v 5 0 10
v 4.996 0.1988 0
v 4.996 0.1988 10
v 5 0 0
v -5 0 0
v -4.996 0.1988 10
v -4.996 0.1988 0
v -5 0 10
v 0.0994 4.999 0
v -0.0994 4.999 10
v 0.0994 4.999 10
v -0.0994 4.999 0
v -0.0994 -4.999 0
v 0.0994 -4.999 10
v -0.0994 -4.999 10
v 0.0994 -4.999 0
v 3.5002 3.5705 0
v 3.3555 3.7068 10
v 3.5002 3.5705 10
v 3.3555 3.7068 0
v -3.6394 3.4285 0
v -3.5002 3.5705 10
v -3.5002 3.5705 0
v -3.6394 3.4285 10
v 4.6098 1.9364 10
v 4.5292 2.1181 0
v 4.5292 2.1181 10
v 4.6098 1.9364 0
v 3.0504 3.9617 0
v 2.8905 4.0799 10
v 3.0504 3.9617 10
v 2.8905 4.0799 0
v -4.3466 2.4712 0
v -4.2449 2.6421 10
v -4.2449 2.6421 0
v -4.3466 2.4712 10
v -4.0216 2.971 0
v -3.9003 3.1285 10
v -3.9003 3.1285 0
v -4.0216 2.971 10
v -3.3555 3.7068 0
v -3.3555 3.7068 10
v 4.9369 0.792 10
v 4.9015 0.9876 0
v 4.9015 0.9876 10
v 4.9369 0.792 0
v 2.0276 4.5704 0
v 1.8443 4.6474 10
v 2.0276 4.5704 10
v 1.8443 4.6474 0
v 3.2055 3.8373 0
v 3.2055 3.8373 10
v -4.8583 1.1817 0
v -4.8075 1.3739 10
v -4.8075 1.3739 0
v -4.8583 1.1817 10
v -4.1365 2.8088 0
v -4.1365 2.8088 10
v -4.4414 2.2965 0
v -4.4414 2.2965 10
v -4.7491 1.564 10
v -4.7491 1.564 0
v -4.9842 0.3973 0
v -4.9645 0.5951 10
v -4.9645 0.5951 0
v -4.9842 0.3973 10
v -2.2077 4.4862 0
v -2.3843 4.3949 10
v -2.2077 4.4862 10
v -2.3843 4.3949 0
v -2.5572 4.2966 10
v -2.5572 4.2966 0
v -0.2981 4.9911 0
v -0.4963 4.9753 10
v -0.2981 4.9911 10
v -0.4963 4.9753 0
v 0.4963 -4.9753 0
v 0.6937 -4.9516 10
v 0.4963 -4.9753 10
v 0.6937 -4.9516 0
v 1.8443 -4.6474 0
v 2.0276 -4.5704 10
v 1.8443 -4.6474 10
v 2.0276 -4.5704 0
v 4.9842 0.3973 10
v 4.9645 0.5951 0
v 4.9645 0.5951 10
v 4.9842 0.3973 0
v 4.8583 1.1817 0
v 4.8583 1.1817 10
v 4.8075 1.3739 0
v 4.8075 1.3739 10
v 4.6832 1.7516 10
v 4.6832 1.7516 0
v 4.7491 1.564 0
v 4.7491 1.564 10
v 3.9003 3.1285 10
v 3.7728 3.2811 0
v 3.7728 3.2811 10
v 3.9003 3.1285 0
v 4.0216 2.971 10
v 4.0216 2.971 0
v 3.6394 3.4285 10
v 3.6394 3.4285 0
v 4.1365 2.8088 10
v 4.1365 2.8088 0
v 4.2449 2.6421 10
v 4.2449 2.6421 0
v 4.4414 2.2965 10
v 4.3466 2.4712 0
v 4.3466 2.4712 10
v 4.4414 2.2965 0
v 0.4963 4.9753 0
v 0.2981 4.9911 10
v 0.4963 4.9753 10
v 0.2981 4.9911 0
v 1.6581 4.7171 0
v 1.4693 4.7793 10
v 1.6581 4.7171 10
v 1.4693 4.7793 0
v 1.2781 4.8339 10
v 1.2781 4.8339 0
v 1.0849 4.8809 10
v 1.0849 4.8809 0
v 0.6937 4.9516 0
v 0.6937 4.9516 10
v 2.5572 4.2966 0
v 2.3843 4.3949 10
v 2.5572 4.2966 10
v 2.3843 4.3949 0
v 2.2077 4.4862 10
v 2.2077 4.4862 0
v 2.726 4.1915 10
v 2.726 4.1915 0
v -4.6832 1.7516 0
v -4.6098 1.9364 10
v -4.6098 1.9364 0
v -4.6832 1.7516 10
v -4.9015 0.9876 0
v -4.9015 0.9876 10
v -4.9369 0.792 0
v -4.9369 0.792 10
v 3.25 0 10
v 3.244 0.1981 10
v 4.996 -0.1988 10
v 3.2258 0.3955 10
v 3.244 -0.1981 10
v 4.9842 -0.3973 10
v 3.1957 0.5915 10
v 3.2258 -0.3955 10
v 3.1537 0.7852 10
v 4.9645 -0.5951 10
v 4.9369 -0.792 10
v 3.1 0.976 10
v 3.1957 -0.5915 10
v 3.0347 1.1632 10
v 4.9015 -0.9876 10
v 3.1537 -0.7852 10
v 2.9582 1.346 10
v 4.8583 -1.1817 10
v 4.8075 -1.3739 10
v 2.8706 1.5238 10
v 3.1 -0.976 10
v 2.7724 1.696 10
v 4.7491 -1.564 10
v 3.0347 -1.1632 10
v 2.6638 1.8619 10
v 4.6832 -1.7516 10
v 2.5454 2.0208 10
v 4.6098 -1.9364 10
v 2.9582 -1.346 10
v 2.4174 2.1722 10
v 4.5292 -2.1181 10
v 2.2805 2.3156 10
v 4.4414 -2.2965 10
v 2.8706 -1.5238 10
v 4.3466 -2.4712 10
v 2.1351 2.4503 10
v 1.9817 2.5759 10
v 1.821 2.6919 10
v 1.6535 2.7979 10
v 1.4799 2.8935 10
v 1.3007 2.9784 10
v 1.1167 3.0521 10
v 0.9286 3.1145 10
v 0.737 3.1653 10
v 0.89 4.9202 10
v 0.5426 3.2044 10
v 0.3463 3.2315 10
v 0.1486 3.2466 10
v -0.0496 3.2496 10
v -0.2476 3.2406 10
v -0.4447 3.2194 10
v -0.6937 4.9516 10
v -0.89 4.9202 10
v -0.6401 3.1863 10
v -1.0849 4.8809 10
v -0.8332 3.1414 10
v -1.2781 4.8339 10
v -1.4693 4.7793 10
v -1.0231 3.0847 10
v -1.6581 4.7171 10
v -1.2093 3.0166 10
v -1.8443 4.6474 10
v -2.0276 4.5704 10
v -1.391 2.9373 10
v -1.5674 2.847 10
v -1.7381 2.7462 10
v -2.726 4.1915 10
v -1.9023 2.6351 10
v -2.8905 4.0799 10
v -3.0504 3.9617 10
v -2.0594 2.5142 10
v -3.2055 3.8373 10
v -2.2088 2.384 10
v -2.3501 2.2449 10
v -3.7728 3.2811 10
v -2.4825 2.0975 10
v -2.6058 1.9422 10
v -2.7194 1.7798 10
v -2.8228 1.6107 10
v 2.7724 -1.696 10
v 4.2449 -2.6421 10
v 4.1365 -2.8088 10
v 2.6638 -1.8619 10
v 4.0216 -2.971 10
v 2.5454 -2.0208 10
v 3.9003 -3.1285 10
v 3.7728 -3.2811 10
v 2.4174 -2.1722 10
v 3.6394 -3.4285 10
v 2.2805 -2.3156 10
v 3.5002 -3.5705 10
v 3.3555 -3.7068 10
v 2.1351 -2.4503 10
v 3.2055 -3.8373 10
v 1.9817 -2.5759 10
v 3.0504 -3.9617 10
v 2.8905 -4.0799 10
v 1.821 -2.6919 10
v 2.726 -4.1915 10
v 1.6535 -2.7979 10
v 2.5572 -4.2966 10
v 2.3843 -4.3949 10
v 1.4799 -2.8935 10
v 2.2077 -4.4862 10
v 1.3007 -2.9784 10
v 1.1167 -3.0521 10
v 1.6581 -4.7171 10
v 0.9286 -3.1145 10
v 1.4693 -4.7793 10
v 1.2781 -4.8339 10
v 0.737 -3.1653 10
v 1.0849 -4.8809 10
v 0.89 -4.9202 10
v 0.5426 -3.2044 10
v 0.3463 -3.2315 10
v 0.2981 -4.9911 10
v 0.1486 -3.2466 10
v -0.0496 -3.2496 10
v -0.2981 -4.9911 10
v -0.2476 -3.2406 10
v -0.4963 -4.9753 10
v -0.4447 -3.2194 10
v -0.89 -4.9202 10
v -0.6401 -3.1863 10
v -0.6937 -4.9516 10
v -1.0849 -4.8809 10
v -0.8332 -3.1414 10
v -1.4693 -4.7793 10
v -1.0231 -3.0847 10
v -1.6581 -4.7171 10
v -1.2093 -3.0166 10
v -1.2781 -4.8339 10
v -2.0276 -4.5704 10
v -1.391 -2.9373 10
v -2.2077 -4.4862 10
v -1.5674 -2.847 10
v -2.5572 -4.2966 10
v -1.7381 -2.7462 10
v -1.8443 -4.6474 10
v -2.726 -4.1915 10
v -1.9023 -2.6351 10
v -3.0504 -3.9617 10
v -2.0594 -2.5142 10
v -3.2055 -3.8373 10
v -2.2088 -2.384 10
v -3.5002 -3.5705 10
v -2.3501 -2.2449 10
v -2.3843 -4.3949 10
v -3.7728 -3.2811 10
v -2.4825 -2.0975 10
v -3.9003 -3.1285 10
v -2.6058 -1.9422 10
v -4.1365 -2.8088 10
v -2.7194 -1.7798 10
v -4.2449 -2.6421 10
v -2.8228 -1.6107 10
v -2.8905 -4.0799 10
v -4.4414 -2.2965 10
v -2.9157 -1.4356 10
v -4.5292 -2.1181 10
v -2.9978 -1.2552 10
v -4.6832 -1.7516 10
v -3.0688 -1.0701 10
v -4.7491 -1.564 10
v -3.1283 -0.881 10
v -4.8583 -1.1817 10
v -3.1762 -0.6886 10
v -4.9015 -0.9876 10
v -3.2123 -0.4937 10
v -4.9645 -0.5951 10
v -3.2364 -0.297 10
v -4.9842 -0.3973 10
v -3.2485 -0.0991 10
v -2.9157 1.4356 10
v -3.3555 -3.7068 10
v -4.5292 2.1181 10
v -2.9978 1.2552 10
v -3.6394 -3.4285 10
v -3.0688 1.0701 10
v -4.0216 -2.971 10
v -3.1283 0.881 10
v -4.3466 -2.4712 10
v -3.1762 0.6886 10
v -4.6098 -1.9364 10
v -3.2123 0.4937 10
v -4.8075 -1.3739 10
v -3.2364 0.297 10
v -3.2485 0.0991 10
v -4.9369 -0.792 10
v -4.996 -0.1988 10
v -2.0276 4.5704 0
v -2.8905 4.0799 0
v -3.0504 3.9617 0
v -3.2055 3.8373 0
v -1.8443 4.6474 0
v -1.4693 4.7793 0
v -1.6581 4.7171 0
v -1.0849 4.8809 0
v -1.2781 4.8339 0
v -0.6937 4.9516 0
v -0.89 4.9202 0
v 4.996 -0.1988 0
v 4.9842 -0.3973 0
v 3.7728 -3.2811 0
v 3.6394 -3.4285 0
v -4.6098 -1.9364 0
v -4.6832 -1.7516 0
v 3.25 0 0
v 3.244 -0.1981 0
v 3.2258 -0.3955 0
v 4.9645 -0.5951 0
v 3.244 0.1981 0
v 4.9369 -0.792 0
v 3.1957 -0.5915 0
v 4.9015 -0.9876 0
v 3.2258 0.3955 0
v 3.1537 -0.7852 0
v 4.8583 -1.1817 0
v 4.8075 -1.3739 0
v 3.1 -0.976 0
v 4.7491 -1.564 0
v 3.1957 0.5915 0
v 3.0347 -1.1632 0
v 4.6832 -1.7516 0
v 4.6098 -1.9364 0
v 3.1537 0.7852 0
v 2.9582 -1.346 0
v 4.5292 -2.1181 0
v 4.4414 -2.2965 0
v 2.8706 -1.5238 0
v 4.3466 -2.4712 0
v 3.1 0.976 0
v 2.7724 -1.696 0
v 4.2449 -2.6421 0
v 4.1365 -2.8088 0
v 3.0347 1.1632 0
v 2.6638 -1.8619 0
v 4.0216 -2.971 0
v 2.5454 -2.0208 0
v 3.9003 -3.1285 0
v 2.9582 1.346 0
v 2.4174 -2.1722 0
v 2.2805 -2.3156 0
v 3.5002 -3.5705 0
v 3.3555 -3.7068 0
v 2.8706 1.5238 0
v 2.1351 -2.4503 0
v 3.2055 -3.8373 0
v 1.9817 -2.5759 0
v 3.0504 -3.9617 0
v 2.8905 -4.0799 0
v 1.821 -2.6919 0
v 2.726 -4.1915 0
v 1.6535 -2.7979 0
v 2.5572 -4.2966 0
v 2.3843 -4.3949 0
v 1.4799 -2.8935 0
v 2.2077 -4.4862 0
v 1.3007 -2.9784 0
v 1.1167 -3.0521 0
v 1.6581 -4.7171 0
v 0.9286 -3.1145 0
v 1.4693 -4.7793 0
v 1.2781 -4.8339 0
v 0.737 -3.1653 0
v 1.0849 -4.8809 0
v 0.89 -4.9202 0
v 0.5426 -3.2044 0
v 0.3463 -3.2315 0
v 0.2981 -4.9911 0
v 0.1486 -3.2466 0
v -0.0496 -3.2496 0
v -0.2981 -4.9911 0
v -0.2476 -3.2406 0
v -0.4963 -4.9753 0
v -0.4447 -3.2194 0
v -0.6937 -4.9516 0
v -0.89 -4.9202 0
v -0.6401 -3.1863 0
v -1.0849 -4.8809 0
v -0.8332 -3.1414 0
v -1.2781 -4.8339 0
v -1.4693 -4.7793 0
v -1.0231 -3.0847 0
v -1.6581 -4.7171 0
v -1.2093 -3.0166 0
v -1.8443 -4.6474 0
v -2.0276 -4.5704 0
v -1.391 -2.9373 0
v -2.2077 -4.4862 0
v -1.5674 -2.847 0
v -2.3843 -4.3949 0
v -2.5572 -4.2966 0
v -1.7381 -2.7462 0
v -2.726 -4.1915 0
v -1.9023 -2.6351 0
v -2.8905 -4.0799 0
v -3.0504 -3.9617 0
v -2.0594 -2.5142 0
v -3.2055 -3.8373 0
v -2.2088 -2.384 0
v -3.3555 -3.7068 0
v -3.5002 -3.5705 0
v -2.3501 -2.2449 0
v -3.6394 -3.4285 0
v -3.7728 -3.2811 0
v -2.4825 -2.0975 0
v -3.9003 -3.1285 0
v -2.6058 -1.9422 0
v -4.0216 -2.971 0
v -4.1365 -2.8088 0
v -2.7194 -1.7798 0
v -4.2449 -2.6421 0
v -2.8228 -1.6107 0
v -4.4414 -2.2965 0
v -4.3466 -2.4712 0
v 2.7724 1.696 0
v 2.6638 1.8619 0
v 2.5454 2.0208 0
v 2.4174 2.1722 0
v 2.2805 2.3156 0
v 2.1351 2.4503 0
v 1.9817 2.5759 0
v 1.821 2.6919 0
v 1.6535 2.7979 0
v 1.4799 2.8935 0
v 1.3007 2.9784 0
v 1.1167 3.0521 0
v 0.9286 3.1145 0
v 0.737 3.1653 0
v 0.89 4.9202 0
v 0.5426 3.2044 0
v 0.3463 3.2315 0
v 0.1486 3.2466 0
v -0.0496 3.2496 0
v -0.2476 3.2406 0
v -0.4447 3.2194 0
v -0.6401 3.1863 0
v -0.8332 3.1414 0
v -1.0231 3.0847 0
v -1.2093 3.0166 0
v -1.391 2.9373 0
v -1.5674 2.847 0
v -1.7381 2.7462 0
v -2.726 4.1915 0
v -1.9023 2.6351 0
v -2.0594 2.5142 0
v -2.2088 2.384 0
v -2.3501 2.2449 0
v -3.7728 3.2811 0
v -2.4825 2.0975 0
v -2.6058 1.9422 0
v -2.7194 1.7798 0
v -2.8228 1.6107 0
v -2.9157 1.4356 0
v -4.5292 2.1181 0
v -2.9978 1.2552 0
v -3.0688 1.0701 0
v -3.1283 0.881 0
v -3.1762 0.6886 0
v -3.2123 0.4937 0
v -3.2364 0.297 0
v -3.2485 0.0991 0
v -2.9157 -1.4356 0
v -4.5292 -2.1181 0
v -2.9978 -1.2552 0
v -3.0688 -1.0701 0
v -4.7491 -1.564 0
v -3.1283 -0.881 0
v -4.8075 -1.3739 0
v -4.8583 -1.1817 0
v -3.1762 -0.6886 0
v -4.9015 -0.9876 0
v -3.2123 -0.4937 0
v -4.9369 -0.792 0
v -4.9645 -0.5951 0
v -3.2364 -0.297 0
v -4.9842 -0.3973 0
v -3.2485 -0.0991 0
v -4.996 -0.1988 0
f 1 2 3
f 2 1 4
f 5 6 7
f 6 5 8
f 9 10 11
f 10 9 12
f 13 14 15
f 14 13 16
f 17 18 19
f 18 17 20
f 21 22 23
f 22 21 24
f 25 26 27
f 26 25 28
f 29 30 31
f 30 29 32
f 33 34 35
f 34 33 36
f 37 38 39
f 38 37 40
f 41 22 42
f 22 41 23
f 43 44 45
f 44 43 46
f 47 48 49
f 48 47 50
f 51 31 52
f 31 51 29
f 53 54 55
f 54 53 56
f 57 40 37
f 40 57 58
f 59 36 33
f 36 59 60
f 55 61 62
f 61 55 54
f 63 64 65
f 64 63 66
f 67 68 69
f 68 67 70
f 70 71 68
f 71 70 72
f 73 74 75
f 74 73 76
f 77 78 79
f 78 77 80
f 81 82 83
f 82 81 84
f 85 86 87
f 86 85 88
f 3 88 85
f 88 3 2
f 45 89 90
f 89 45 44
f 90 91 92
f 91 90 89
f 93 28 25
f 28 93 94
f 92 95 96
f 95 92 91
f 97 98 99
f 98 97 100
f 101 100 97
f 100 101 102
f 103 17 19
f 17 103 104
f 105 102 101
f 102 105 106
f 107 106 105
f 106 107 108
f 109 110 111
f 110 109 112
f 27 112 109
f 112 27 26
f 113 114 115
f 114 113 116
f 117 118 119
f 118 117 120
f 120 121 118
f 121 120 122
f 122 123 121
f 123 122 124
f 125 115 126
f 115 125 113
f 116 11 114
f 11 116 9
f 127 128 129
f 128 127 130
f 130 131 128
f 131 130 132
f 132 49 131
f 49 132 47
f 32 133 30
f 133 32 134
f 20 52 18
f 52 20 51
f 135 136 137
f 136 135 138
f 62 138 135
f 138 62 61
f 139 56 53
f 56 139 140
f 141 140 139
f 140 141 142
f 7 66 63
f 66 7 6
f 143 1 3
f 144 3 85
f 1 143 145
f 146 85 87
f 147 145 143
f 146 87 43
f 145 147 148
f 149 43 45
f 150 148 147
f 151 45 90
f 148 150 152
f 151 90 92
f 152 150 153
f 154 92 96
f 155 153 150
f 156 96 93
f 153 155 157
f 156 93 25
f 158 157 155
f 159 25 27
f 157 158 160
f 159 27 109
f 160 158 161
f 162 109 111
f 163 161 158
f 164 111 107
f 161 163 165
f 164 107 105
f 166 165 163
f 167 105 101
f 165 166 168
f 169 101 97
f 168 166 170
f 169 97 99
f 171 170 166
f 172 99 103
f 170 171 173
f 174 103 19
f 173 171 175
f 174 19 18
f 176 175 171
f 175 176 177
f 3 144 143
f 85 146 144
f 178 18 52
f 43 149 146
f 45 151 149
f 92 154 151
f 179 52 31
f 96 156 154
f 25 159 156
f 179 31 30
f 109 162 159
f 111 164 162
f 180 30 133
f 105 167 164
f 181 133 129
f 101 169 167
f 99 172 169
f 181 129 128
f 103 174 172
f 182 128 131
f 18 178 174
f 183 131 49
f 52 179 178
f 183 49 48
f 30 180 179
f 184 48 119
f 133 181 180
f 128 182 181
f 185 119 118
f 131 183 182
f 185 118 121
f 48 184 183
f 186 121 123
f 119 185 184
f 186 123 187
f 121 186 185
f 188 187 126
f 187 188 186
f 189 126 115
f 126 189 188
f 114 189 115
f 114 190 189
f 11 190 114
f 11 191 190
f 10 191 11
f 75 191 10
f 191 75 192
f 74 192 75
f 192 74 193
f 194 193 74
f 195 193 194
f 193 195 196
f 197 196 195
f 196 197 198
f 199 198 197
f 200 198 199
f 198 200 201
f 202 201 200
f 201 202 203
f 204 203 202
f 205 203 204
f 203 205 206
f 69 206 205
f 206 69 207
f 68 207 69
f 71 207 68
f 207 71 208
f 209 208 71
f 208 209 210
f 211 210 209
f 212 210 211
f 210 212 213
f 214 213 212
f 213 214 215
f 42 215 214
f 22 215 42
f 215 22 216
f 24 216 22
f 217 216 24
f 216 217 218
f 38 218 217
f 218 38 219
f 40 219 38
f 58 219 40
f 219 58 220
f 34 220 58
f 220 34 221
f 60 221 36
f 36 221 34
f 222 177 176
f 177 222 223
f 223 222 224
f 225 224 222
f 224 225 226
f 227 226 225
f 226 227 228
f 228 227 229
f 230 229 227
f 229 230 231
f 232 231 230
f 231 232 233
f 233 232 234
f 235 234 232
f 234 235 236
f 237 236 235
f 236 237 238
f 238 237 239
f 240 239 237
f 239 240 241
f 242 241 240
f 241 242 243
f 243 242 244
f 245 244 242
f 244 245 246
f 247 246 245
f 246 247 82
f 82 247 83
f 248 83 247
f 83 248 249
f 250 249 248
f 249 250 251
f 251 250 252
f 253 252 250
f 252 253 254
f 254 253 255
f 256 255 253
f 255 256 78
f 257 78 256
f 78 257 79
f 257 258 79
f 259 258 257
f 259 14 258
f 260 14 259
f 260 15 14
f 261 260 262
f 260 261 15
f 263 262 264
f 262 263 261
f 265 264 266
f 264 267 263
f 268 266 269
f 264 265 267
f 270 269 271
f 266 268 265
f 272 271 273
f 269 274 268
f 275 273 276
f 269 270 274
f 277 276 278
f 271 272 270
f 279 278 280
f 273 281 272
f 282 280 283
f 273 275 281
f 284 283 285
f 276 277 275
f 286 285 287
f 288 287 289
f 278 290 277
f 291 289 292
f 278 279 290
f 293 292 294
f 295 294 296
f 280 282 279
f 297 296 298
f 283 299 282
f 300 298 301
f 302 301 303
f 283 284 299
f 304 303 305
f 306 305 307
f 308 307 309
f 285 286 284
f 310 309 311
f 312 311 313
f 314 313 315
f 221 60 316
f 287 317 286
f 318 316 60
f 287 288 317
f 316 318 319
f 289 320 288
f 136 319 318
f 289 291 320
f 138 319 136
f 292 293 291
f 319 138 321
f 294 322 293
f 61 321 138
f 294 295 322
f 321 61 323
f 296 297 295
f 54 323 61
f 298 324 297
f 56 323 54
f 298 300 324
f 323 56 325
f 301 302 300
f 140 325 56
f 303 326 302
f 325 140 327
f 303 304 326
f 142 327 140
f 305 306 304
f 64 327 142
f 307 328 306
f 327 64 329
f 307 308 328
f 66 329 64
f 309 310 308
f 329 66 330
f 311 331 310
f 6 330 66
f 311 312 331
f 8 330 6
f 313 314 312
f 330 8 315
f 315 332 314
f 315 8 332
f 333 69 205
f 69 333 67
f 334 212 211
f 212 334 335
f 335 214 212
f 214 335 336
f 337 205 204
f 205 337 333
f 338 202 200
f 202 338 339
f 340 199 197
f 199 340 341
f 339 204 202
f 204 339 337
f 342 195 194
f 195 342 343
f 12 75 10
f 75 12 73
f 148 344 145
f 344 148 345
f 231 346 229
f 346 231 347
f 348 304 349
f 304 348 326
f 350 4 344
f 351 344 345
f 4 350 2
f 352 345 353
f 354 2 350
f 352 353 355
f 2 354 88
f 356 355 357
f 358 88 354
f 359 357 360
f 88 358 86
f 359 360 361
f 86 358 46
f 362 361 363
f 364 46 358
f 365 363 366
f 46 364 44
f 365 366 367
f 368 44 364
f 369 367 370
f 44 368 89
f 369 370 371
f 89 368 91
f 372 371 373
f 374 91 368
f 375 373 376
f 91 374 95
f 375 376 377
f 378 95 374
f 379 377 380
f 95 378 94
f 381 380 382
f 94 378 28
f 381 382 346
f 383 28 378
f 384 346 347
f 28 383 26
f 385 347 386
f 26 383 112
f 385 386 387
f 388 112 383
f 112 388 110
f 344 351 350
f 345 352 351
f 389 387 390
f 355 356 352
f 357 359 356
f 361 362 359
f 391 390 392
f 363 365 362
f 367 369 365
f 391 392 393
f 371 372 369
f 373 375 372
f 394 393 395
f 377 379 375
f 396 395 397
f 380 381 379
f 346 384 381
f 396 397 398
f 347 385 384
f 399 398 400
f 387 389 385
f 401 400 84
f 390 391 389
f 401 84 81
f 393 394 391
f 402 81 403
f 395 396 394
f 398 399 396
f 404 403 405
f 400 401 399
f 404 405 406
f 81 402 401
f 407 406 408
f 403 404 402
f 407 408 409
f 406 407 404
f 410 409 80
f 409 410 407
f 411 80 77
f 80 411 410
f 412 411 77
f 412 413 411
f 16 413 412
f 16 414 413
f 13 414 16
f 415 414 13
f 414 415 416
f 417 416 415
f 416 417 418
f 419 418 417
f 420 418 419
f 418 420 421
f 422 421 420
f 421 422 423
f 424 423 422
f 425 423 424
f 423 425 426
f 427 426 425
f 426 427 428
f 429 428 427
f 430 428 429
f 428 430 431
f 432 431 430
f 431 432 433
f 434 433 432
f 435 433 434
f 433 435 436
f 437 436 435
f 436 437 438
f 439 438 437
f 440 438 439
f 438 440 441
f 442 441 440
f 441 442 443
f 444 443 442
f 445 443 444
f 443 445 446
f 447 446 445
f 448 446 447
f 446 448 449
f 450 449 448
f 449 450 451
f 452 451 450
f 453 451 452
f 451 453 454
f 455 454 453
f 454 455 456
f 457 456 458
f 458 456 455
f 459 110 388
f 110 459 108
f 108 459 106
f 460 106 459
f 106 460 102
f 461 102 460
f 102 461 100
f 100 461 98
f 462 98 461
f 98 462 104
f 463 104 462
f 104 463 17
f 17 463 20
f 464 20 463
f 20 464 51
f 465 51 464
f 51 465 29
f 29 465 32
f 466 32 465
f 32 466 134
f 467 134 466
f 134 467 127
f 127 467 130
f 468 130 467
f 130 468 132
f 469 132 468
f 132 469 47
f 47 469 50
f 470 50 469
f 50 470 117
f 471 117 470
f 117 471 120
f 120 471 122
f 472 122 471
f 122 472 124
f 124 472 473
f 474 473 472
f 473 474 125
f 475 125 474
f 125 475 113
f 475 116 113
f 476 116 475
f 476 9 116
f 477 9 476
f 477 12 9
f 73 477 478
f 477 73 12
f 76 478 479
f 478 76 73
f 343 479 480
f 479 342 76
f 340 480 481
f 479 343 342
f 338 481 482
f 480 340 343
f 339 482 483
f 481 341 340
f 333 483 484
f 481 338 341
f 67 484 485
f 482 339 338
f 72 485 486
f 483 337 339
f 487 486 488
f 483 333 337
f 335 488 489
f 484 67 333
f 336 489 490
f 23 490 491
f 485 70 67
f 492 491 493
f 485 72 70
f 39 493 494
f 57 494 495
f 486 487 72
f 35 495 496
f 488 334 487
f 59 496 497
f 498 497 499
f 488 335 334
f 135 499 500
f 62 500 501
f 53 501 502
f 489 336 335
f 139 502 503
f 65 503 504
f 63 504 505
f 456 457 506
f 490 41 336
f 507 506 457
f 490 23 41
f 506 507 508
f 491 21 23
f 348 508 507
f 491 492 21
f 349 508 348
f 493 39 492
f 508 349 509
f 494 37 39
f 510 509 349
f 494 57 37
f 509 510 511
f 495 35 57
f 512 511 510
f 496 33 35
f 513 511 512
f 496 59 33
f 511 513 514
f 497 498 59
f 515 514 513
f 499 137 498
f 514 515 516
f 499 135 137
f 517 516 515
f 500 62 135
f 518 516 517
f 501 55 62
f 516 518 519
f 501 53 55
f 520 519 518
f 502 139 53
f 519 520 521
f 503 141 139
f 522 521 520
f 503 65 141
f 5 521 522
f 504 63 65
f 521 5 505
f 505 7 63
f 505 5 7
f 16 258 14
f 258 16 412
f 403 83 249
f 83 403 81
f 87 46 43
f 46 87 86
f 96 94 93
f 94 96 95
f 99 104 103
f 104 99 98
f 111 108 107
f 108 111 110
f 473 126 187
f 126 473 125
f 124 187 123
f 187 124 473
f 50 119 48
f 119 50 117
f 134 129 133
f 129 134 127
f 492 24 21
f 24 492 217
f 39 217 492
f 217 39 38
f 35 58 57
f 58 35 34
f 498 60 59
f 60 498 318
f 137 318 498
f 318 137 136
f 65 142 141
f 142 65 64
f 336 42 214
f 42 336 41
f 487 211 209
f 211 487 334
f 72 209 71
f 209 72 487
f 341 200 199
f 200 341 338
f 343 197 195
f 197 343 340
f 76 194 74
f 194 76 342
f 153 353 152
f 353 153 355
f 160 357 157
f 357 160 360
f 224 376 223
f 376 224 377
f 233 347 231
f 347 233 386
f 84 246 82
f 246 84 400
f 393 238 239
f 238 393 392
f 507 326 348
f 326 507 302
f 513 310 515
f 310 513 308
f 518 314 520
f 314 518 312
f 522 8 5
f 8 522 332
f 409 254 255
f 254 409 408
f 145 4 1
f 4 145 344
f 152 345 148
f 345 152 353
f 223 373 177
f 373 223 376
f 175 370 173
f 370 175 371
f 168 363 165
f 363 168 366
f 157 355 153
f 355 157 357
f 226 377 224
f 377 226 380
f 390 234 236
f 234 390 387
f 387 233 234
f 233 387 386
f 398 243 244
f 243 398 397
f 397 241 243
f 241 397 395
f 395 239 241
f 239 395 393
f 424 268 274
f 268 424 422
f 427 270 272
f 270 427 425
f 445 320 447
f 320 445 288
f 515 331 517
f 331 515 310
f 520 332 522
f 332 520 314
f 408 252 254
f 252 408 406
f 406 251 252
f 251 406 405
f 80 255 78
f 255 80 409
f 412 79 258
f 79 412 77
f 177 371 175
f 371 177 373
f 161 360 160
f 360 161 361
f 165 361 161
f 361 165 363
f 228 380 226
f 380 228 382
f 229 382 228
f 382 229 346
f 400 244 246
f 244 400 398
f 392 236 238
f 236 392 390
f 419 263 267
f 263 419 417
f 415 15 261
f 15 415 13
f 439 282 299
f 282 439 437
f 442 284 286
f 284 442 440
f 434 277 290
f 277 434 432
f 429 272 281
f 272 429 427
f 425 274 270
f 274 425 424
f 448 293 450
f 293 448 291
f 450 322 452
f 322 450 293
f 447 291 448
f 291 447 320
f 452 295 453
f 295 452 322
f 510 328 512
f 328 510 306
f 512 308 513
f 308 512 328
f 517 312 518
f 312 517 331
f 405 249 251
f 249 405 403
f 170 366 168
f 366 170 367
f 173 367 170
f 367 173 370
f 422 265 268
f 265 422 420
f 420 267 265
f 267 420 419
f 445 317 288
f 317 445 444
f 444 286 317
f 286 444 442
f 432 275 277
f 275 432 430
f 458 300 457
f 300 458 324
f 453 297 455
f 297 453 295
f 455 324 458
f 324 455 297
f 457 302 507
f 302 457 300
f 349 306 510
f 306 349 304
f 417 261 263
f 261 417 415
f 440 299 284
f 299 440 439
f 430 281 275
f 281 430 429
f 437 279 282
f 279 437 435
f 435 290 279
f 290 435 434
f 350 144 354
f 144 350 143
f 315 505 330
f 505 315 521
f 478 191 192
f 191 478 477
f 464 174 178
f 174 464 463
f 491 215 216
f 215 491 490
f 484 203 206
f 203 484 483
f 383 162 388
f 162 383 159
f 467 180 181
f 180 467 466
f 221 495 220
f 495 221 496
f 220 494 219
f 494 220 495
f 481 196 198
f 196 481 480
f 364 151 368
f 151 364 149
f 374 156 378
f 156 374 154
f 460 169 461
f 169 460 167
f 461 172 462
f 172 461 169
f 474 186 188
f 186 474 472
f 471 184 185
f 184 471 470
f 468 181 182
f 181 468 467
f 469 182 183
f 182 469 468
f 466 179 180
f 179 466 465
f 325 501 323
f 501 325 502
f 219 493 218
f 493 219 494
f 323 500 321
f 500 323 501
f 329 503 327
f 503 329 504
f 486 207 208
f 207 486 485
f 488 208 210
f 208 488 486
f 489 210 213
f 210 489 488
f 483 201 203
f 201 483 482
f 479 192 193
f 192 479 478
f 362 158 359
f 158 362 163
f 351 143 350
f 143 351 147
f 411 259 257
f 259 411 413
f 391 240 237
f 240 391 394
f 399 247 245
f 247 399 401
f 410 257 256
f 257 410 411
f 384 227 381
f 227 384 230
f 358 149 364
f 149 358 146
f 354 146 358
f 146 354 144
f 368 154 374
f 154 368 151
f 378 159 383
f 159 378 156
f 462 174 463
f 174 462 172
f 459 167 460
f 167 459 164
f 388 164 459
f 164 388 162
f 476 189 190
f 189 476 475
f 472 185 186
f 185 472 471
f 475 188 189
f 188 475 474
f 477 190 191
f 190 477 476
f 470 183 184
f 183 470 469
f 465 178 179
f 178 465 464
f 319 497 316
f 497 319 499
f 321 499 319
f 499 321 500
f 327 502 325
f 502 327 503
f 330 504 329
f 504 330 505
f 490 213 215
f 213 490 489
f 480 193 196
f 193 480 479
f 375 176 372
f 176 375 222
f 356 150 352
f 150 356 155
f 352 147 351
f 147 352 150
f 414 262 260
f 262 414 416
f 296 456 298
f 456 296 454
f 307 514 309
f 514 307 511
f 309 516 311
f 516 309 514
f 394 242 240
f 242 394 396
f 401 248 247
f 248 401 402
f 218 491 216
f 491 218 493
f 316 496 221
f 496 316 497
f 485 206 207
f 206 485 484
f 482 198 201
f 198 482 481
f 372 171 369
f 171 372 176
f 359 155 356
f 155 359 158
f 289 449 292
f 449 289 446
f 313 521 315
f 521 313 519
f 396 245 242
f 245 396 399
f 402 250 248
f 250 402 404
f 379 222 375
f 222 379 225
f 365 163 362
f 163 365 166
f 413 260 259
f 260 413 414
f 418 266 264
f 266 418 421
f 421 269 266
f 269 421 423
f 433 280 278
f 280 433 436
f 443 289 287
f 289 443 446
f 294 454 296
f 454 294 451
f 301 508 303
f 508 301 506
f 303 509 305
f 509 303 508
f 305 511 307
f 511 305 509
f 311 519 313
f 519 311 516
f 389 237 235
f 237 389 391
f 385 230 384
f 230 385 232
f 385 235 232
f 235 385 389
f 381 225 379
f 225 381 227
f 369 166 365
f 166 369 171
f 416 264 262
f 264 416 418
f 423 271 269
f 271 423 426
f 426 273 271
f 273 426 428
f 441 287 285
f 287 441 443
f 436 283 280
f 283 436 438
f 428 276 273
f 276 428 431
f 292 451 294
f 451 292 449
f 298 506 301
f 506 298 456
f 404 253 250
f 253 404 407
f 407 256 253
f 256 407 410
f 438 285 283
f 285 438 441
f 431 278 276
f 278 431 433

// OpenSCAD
$fs=0.2;
$fa=0.2;

difference(){
  cylinder(10,10/2,10/2);  
  cylinder(10,6.5/2,6.5/2);
}
